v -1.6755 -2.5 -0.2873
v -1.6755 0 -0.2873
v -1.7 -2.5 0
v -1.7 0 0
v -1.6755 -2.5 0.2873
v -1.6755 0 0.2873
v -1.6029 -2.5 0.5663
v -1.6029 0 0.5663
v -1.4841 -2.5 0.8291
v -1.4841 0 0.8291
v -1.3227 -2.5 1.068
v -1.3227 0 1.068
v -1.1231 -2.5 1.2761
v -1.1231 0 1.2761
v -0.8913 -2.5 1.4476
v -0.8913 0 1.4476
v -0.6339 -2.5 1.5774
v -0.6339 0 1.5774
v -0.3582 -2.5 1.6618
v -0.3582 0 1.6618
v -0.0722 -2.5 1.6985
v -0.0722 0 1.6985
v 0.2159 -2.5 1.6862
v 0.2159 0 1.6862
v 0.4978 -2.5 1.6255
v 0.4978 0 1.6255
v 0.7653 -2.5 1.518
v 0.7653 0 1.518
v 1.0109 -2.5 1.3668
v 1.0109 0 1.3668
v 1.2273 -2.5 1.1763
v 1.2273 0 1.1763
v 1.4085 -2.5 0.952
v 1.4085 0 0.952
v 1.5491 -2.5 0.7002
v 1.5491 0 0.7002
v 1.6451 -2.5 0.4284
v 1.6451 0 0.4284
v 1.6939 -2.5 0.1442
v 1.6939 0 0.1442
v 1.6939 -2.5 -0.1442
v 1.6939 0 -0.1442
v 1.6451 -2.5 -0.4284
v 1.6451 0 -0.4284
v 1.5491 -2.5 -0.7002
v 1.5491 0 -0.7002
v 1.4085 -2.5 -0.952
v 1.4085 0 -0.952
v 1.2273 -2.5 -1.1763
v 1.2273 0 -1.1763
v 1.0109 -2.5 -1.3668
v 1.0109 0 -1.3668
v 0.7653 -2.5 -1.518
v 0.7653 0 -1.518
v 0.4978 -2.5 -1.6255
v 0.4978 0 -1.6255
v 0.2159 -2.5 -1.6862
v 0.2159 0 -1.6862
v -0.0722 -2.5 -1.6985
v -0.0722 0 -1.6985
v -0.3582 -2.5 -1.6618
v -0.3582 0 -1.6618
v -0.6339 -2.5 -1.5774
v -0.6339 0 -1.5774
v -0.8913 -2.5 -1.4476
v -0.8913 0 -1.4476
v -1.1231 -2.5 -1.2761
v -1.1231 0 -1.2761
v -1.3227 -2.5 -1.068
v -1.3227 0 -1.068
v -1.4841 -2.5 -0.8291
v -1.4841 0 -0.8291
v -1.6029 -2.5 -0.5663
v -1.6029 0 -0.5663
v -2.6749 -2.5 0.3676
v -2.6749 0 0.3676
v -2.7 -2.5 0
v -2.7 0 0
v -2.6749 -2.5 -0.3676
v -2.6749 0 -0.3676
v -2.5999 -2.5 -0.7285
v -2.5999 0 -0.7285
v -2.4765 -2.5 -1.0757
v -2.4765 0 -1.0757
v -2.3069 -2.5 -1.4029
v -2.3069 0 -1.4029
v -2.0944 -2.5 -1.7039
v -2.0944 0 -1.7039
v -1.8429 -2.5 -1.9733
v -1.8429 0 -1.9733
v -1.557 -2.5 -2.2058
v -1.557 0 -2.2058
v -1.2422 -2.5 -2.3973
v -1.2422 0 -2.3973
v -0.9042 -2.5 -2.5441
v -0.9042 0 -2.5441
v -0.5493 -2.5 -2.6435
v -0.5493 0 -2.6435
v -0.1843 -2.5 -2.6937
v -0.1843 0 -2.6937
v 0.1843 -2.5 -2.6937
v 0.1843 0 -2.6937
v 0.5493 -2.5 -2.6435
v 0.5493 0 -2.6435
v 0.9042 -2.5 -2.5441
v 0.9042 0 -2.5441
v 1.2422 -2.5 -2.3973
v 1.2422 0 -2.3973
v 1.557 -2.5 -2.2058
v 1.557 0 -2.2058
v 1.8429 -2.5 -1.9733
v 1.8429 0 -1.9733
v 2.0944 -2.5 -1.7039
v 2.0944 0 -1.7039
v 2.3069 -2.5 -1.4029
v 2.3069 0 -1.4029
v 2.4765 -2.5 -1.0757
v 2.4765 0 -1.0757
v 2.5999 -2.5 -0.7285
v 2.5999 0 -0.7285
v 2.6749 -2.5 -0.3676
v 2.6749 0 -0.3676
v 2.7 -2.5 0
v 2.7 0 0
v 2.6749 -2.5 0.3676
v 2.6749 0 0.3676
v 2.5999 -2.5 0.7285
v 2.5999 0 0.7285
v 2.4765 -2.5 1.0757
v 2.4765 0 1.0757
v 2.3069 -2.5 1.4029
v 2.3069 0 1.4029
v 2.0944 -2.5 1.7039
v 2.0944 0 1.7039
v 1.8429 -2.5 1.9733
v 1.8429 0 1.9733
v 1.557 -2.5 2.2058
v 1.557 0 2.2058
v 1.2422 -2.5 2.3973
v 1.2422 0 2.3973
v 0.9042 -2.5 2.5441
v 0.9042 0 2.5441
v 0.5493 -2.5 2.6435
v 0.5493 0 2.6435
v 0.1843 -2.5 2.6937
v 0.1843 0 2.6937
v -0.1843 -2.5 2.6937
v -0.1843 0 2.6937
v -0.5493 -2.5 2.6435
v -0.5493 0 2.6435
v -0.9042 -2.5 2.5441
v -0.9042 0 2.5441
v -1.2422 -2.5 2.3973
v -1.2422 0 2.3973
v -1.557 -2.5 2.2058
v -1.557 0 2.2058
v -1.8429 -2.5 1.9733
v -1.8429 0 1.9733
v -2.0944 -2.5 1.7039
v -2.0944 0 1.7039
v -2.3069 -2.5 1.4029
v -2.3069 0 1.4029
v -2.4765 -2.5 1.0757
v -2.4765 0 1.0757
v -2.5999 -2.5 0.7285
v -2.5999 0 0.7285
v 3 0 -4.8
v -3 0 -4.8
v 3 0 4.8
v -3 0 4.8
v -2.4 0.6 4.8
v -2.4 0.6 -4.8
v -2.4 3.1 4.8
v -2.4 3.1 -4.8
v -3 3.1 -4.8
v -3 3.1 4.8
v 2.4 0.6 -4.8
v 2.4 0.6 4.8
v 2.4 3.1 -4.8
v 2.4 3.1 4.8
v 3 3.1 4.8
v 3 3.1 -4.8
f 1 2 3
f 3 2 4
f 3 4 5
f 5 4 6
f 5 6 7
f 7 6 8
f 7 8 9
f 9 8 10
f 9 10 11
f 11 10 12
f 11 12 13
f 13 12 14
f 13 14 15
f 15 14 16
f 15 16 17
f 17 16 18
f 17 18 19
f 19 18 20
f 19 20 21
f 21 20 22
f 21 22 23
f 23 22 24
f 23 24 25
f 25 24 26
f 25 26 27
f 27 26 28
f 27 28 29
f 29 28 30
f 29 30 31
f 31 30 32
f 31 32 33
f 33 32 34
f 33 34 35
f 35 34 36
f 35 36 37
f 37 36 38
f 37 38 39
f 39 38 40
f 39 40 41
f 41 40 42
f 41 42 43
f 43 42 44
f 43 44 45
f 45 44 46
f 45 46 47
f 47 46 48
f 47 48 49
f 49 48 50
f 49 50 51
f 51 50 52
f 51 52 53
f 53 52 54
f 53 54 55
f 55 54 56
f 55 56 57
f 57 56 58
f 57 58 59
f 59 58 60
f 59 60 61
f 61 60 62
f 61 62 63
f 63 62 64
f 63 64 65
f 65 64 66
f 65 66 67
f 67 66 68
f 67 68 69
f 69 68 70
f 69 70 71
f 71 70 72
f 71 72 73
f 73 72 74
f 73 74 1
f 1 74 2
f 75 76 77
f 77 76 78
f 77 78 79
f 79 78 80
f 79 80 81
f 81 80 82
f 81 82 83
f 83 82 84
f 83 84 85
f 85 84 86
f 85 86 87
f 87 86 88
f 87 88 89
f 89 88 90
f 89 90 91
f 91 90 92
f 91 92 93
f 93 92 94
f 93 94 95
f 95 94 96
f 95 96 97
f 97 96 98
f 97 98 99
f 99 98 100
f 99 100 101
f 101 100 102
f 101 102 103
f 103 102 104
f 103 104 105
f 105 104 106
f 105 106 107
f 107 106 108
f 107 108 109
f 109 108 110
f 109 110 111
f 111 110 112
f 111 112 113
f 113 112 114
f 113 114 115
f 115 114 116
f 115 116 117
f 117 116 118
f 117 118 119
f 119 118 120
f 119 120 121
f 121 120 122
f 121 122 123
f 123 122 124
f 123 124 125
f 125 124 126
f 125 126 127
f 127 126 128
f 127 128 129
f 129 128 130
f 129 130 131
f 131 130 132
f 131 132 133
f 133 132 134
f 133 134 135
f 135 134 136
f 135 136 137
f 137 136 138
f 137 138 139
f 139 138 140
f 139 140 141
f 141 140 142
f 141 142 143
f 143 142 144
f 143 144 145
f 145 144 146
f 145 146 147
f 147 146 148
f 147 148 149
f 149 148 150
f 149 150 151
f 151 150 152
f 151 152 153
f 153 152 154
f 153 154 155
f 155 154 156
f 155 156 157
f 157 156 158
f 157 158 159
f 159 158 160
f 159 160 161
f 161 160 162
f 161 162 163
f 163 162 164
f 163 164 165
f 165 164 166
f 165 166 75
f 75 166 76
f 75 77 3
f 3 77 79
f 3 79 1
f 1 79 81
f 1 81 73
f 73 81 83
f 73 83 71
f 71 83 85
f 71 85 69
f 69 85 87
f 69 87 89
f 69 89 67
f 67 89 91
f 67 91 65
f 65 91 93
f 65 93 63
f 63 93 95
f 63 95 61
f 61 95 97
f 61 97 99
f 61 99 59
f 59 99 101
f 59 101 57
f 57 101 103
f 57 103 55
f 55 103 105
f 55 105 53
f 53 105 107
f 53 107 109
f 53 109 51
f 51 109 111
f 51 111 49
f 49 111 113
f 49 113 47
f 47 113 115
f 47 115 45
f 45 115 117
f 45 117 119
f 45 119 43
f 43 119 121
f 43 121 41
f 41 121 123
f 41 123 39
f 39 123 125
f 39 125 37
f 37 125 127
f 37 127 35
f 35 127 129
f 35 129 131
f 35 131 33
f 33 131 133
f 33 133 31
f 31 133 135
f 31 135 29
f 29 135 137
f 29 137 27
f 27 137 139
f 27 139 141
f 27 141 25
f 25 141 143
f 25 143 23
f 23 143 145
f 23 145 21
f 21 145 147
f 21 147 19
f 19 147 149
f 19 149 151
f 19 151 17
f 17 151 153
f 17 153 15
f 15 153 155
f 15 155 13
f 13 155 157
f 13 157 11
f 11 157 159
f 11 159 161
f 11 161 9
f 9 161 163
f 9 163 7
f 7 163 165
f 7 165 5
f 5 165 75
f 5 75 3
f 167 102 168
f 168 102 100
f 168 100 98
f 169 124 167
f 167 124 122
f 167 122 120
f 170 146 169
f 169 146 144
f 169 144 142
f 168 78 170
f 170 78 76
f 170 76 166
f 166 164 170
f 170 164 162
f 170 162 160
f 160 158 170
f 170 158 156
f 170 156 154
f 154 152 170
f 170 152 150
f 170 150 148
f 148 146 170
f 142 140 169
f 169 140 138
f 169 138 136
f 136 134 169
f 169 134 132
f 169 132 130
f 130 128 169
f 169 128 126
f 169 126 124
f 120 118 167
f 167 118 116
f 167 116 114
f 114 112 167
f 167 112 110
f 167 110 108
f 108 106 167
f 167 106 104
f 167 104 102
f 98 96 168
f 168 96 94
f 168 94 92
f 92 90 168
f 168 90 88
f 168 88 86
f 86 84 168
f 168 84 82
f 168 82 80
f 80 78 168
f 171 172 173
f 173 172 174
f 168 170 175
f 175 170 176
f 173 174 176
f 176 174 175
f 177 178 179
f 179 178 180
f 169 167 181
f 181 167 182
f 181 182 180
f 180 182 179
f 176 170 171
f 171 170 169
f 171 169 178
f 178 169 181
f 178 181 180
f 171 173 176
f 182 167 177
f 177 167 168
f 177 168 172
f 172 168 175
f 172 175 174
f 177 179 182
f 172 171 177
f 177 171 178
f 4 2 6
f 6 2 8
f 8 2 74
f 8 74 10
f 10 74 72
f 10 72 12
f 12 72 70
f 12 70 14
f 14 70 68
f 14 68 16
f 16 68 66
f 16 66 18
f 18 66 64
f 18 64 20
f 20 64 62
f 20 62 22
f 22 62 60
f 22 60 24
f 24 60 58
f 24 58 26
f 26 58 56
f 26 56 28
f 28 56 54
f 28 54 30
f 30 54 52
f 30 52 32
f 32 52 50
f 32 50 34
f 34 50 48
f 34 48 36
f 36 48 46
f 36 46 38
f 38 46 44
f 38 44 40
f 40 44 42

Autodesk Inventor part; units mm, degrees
ref_plane "YZ Plane" through (0, 0, 0) normal (1, 0, 0) x (0, 1, 0)
ref_plane "XZ Plane" through (0, 0, 0) normal (0, 1, 0) x (-1, 0, 0)
ref_plane "XY Plane" through (0, 0, 0) normal (0, 0, 1) x (1, 0, 0)
sketch "스케치1" plane through (0, 0, 0) normal (0, 1, 0) x (-1, 0, 0)
  line L0 (-2.4, 4.8) -> (2.4, 4.8)
  line L1 (2.4, 4.8) -> (2.4, -4.8)
  line L2 (2.4, -4.8) -> (-2.4, -4.8)
  line L3 (-2.4, -4.8) -> (-2.4, 4.8)
  line L4 (-2.4, 4.8) -> (2.4, -4.8) construction
  line L5 (2.4, 4.8) -> (-2.4, -4.8) construction
  circle A0 centre (0, 0) radius 2.7
  circle A1 centre (0, 0) radius 1.7
  dimension "d0" = 4.8
  dimension "d1" = 9.6
  dimension "d17" = 5.4
  dimension "d18" = 3.4
extrude "돌출1" add sketch "스케치1" along normal blind 0.6 contours L0 L1 A0 L3 | A0 L1 L3 | A0 L1 L2 L3 | A1
sketch "스케치2" plane through (0, 0, 0) normal (0, -1, 0) x (1, 0, 0)
  line L0 (2.4, -4.8) -> (-2.4, -4.8) projected
  line L1 (2.4, 4.8) -> (2.4, -4.8) projected
  line L2 (-2.4, 4.8) -> (2.4, 4.8) projected
  line L3 (-2.4, -4.8) -> (-2.4, 4.8) projected
  line L4 (2.4, 4.8) -> (3, 4.8)
  line L5 (3, 4.8) -> (3, -4.8)
  line L6 (3, -4.8) -> (2.4, -4.8)
  line L7 (2.4, -4.8) -> (2.4, 4.8)
  line L8 (-2.4, -4.8) -> (-2.4, 4.8) projected
  line L9 (-2.4, 4.8) -> (-3, 4.8)
  line L10 (-3, 4.8) -> (-3, -4.8)
  line L11 (-3, -4.8) -> (-2.4, -4.8)
  line L12 (-2.4, -4.8) -> (-2.4, 4.8)
  point P0 (0, 0)
  dimension "d4" = 0.6
  dimension "d5" = 0.6
extrude "돌출2" add sketch "스케치2" against normal blind 3.1 contours L1 L4 L5 L6 | L11 L10 L9 L3
extrude "돌출5" add sketch "스케치1" against normal blind 2.5 contours A0 L1 L3 | L3 A0 | A0 L1
properties part number "endcap_4mm_2ea_typeB_ver2_onyx_addon"
